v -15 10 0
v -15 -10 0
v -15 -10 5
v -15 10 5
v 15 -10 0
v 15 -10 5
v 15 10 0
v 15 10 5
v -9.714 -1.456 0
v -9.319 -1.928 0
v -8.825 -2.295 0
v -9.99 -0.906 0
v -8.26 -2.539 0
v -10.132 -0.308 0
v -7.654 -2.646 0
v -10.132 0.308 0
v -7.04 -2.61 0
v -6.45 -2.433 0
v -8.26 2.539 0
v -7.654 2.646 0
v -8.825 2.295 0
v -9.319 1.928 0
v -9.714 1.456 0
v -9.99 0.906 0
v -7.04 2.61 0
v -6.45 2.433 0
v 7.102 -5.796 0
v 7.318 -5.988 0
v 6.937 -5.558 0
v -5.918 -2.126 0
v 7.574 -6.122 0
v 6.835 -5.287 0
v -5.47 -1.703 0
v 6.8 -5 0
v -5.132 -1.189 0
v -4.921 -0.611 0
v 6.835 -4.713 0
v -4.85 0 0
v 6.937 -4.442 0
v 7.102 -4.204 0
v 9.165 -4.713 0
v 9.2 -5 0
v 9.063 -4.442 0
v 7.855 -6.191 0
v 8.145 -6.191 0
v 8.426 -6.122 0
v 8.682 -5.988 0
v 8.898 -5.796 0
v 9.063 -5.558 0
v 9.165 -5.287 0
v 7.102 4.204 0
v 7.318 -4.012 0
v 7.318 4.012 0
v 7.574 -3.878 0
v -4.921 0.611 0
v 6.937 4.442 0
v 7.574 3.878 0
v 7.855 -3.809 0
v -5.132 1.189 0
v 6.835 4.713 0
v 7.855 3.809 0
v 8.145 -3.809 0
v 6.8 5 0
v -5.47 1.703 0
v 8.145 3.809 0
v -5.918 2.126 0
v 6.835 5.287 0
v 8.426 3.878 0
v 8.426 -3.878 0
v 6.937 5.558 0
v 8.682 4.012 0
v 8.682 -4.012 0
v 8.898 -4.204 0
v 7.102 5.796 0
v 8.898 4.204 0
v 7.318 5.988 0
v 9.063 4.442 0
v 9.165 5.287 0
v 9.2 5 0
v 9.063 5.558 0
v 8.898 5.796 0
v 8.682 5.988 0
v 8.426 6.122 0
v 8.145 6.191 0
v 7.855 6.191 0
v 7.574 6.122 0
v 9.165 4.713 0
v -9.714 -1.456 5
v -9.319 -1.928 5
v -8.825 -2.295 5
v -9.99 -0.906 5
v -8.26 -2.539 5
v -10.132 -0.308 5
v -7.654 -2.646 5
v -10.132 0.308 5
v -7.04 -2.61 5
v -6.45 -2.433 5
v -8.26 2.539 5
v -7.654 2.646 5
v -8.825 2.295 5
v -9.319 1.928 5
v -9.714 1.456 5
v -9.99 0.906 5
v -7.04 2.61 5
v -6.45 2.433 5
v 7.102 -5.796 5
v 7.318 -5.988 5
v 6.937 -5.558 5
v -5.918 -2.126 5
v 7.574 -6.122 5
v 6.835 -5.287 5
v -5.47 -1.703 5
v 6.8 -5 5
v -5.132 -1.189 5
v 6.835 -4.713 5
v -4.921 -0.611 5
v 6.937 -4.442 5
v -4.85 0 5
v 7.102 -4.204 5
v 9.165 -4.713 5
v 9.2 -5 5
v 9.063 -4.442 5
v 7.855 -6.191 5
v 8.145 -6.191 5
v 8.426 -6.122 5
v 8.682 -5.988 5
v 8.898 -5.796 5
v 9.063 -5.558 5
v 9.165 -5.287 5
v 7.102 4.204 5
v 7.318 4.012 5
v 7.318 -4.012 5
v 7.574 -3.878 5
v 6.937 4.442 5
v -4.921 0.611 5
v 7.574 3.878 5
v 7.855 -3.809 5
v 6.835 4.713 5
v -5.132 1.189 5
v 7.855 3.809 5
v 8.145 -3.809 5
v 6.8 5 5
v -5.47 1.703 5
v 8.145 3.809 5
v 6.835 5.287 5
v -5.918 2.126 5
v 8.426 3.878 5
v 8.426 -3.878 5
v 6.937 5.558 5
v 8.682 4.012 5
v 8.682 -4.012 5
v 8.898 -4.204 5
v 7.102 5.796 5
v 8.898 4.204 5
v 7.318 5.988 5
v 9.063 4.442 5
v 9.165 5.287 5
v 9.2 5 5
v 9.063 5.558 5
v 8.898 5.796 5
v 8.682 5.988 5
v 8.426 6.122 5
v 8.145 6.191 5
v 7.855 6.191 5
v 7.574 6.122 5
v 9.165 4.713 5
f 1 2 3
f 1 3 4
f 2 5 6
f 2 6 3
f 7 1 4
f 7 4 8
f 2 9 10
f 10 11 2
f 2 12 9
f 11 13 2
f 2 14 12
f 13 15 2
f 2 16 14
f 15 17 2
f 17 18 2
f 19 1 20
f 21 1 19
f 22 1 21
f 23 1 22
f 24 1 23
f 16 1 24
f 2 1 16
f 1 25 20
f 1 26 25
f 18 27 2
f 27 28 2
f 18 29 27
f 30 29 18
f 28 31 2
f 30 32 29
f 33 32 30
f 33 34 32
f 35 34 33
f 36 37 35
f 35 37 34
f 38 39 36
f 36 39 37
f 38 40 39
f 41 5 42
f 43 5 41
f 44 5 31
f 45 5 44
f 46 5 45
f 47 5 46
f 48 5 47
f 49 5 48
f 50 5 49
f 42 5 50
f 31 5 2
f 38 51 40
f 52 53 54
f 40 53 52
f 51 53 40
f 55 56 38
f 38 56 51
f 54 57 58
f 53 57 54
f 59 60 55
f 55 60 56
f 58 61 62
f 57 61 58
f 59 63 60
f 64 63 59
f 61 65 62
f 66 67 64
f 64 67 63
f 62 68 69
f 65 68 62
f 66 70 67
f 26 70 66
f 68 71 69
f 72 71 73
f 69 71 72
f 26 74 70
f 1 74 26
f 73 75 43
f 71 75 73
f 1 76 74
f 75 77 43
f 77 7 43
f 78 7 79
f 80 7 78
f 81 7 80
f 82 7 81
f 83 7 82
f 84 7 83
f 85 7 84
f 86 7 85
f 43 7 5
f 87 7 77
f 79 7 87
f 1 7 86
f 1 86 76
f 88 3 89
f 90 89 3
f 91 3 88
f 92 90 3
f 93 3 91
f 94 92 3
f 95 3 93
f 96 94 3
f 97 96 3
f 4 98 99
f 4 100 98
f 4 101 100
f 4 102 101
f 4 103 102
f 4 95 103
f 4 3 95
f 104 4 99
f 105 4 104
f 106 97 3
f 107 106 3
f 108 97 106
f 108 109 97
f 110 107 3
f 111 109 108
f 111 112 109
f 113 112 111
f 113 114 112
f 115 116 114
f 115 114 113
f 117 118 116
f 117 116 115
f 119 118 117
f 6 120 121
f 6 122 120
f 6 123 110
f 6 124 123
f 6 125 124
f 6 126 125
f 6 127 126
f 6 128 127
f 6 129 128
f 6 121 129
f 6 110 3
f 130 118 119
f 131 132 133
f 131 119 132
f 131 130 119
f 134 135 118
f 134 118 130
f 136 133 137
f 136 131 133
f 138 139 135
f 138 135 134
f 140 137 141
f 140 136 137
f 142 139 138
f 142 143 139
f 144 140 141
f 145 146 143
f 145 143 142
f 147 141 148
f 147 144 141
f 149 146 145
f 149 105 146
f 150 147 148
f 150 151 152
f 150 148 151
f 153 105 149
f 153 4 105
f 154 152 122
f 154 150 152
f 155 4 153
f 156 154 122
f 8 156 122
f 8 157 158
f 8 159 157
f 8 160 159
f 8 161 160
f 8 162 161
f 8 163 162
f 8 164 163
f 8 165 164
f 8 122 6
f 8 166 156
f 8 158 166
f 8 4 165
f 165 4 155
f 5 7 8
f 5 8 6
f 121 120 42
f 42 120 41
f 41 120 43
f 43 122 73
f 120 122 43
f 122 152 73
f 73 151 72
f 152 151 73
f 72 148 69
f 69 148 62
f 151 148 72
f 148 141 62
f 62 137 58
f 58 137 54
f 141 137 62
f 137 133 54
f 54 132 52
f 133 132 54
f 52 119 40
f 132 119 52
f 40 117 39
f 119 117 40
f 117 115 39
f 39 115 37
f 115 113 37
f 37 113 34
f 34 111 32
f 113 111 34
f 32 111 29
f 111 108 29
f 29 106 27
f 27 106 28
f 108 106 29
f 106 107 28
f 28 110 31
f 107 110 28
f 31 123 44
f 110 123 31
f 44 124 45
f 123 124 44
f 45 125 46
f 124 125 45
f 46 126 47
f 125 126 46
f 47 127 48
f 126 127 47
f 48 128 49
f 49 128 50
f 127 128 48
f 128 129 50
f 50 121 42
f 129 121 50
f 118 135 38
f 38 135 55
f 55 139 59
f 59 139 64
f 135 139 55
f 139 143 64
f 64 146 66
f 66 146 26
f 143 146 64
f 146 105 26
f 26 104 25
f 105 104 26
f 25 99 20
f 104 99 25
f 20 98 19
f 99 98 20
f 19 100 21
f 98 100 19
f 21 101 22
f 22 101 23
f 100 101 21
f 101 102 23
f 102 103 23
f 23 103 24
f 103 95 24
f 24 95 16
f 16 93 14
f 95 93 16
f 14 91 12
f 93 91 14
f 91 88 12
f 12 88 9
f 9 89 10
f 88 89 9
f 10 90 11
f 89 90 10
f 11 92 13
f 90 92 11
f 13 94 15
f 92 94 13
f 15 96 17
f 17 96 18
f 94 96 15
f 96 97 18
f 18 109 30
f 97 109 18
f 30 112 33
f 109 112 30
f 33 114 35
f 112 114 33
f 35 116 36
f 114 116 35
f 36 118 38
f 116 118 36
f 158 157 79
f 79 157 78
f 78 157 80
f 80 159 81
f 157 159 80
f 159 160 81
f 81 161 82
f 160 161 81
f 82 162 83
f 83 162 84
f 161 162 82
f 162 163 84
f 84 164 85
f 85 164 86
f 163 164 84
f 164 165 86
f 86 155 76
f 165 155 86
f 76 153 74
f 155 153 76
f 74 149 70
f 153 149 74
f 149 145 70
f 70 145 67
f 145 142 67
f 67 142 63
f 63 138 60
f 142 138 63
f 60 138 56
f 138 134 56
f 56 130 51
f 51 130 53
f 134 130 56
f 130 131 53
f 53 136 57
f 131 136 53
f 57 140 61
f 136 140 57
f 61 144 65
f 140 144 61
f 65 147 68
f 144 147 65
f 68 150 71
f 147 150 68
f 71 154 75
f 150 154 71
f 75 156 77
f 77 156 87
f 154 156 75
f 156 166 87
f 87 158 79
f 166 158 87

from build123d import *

# Parameters (mm, degrees)
SKETCH_W        = 30
SKETCH_H        = 20
PAD_DEPTH       = 5
SKETCH001_R     = 1.2
POCKET_DEPTH    = 5
SKETCH002_R     = 2.65
POCKET001_DEPTH = 5


with BuildPart() as part:
    # Sketch → Pad (new body)
    with BuildSketch(Plane.XY):
        Rectangle(SKETCH_W, SKETCH_H)
    extrude(amount=PAD_DEPTH)

    # Sketch001 (on Face6 of Pad) → Pocket (cut)
    with BuildSketch(Plane.XY.offset(5)):
        with Locations((8, 5)):
            Circle(SKETCH001_R)
        with Locations((8, -5)):
            Circle(SKETCH001_R)
    extrude(amount=-POCKET_DEPTH, mode=Mode.SUBTRACT)

    # Sketch002 (on Face5 of Pocket) → Pocket001 (cut)
    with BuildSketch(Plane.XY.offset(5)):
        with Locations((-7.5, 0)):
            Circle(SKETCH002_R)
    extrude(amount=-POCKET001_DEPTH, mode=Mode.SUBTRACT)


solid = part.part
